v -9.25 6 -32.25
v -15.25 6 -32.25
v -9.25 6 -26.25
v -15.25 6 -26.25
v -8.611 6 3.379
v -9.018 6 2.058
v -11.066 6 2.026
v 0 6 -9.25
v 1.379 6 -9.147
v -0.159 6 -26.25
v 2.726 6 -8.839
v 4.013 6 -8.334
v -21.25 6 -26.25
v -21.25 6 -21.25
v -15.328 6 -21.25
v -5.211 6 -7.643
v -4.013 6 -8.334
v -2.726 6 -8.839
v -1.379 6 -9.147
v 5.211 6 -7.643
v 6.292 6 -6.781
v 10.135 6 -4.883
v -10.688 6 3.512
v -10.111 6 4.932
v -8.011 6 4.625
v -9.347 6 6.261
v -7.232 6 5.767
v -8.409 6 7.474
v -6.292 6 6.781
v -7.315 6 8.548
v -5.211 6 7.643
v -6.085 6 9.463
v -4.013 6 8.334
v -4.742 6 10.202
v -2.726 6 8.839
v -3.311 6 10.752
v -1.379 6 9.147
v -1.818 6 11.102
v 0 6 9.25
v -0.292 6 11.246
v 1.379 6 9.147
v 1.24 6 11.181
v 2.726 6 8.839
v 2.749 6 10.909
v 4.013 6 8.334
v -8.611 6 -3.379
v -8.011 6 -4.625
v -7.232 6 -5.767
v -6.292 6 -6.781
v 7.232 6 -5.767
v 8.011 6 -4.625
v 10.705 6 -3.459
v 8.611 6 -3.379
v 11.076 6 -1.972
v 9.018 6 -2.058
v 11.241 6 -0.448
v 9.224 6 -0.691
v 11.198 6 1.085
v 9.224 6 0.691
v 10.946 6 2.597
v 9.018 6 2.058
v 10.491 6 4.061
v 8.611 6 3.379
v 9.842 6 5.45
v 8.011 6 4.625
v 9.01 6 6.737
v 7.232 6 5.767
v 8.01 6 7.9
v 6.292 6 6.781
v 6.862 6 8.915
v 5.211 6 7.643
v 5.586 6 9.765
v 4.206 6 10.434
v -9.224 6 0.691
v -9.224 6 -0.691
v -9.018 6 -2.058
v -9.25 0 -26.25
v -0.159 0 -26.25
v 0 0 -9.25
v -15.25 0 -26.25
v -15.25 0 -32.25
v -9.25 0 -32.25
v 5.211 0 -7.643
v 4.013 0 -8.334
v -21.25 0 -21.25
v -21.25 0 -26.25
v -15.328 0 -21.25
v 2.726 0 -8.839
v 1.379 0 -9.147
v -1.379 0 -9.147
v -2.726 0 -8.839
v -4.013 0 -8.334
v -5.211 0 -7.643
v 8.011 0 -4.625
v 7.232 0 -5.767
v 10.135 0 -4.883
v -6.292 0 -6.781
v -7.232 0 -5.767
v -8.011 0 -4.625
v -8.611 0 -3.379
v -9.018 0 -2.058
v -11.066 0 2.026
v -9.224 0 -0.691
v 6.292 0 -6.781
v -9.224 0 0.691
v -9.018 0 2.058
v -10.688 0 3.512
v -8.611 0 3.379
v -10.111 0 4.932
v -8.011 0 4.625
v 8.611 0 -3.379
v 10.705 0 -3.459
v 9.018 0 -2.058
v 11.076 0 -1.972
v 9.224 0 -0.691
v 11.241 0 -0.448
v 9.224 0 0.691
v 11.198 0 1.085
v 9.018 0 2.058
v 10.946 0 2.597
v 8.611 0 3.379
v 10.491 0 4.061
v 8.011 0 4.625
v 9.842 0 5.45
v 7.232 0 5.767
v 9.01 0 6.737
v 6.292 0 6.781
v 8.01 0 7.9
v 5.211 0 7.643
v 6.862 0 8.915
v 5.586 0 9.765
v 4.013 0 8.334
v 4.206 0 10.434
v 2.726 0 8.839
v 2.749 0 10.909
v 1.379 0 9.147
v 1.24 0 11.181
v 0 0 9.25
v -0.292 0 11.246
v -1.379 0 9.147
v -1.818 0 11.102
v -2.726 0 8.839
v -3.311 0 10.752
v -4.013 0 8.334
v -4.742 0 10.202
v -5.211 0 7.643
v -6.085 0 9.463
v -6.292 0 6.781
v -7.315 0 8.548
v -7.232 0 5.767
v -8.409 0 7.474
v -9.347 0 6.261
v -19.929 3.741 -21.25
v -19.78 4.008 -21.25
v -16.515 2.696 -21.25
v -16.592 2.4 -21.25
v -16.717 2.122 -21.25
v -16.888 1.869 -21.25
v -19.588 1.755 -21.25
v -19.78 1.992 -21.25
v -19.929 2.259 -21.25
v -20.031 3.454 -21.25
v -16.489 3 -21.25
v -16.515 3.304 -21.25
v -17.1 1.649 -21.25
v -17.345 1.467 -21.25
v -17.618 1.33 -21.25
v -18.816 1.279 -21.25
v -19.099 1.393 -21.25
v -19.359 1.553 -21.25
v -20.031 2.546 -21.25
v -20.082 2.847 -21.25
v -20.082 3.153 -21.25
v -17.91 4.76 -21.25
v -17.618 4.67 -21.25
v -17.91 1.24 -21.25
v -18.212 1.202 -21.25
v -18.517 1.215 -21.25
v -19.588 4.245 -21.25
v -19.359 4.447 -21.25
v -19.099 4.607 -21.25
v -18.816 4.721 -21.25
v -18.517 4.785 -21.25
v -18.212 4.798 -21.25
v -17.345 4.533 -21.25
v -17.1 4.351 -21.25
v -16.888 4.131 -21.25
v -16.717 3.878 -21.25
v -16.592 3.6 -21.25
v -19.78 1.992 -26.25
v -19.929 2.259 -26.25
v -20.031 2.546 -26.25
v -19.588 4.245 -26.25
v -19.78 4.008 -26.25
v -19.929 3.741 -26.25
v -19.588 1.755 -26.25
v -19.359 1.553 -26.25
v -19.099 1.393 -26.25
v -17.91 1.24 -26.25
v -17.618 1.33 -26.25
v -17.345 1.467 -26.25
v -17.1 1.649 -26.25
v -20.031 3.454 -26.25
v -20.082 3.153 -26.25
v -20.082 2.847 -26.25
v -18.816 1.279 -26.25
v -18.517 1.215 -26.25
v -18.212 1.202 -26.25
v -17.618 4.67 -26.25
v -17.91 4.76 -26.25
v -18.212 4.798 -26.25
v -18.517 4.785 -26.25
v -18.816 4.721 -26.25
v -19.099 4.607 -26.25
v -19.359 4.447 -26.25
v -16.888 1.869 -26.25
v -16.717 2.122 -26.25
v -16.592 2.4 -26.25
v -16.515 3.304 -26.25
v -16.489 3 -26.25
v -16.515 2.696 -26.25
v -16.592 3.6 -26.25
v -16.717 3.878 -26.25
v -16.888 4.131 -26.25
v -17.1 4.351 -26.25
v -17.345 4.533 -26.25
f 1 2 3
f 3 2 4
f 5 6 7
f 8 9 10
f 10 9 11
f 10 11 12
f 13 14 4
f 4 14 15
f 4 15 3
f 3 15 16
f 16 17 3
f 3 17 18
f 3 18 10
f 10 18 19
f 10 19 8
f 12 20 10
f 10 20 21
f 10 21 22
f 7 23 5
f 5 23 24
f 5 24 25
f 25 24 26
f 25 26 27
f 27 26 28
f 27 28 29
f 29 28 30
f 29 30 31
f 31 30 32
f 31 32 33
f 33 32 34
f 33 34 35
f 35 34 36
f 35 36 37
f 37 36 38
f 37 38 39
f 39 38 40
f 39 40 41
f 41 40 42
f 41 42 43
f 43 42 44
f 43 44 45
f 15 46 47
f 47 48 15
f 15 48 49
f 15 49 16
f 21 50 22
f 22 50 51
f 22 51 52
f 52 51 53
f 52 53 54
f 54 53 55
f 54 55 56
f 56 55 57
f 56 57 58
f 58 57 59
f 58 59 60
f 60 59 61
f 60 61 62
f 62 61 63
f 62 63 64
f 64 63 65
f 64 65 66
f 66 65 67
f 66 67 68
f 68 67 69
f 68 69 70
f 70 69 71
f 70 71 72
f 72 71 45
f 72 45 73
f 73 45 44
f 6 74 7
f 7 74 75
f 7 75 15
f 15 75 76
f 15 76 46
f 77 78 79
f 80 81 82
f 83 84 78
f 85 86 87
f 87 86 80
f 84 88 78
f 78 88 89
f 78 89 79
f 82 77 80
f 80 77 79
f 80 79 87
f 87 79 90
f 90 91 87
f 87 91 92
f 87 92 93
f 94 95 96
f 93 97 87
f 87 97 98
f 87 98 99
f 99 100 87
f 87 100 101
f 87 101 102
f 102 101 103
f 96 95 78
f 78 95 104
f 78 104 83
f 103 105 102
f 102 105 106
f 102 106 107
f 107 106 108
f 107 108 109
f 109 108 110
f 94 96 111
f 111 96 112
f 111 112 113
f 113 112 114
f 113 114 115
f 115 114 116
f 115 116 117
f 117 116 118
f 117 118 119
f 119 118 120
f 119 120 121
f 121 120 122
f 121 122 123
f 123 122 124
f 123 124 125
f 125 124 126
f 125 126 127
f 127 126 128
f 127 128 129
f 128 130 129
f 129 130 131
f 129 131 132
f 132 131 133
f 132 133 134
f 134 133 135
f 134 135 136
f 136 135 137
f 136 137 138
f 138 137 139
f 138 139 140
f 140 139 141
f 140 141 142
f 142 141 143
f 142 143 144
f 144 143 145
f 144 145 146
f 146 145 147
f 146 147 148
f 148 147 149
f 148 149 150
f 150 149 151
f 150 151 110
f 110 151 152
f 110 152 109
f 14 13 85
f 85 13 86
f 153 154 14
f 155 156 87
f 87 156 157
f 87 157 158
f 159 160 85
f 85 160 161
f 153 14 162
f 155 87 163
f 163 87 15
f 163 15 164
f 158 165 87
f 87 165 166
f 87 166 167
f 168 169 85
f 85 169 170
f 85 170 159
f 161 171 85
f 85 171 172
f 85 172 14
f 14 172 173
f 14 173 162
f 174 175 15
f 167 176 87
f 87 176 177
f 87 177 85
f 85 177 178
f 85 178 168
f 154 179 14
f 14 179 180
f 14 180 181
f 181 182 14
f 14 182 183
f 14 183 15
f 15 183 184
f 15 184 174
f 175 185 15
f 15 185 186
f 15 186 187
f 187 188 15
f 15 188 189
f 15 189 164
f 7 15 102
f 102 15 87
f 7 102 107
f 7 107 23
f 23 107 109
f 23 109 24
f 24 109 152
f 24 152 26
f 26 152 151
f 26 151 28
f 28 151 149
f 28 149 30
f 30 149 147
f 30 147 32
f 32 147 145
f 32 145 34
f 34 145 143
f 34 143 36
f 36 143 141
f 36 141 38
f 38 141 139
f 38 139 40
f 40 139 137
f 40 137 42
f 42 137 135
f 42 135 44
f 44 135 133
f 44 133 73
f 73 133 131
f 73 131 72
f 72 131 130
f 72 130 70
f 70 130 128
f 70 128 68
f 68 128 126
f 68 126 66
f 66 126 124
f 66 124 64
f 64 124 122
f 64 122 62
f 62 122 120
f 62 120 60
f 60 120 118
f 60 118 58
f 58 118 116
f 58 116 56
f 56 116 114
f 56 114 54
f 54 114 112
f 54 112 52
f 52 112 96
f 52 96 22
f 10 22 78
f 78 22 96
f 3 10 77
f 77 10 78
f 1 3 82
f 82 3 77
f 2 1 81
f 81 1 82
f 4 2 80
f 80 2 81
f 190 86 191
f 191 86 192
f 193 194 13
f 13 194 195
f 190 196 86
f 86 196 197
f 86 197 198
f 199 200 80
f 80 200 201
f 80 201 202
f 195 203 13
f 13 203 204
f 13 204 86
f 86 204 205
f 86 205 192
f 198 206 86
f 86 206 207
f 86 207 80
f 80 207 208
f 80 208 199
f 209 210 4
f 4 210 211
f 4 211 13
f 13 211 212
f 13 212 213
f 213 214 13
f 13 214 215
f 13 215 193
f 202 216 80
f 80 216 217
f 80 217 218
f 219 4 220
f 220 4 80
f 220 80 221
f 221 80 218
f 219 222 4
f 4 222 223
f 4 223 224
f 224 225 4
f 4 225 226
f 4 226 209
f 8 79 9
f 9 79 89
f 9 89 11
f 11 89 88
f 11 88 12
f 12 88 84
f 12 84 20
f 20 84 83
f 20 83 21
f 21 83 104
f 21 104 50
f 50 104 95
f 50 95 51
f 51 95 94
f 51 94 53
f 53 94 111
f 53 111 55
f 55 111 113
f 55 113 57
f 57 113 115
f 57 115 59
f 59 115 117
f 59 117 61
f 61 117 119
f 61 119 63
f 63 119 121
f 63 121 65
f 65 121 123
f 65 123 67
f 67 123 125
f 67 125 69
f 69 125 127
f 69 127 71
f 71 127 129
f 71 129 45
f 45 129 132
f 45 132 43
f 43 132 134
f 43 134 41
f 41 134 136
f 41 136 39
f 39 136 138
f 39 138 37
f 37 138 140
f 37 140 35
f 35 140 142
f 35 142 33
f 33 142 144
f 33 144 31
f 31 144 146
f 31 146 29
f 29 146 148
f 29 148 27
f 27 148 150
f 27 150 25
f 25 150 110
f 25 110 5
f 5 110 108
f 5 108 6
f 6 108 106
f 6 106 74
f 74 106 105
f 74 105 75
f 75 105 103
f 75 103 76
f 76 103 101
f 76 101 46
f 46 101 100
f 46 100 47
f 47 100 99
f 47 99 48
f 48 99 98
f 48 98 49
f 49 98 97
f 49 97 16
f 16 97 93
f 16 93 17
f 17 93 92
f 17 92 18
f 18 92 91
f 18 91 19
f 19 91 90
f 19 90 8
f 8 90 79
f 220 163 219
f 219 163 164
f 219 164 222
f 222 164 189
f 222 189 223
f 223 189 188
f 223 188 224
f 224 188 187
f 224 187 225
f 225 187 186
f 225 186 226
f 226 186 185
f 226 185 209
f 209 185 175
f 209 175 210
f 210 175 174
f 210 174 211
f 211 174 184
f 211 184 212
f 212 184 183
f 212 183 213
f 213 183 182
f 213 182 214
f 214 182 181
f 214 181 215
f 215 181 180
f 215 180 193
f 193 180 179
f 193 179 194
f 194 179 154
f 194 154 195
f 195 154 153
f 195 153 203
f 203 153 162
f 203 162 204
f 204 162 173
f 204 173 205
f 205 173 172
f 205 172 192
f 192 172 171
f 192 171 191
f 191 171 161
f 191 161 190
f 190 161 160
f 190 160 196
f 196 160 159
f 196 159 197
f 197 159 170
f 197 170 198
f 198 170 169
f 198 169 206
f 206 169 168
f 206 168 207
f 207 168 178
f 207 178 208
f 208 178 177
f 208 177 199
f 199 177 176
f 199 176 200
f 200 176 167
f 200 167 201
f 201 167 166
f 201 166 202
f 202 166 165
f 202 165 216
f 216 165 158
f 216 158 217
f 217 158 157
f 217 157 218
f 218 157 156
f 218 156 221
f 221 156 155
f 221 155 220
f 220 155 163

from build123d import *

# Parameters (mm, degrees)
SKETCH1_R           = 9.25
BOSS_EXTRUDE1_DEPTH = 6
SKETCH2_R           = 1.8
CUT_EXTRUDE1_DEPTH  = 12


with BuildPart() as part:
    # Sketch1 → Boss-Extrude1 (new body)
    with BuildSketch(Plane(origin=(0, 0, 0), x_dir=(1, 0, 0), z_dir=(0, 1, 0))):
        with BuildLine():
            Line((-21.25, 26.25), (-15.25, 26.25))
            Line((-15.25, 26.25), (-15.25, 32.25))
            Line((-15.25, 32.25), (-9.25, 32.25))
            Line((-9.25, 32.25), (-9.25, 26.25))
            Line((-9.25, 26.25), (-0.158743734, 26.25))
            Line((-0.158743734, 26.25), (10.135163922, 4.882719763))
            ThreePointArc((10.135163922, 4.882719763), (3.485591088, -10.696408499), (-11.066060992, -2.026029152))
            Line((-11.066060992, -2.026029152), (-15.327551476, 21.25))
            Line((-15.327551476, 21.25), (-21.25, 21.25))
            Line((-21.25, 21.25), (-21.25, 26.25))
        make_face()
        Circle(SKETCH1_R, mode=Mode.SUBTRACT)
    extrude(amount=BOSS_EXTRUDE1_DEPTH)

    # Sketch2 → Cut-Extrude1 (cut, through all)
    with BuildSketch(Plane.XY.offset(-21.25)):
        with Locations((-18.288775738, 3)):
            Circle(SKETCH2_R)
    extrude(amount=-CUT_EXTRUDE1_DEPTH, mode=Mode.SUBTRACT)


solid = part.part
